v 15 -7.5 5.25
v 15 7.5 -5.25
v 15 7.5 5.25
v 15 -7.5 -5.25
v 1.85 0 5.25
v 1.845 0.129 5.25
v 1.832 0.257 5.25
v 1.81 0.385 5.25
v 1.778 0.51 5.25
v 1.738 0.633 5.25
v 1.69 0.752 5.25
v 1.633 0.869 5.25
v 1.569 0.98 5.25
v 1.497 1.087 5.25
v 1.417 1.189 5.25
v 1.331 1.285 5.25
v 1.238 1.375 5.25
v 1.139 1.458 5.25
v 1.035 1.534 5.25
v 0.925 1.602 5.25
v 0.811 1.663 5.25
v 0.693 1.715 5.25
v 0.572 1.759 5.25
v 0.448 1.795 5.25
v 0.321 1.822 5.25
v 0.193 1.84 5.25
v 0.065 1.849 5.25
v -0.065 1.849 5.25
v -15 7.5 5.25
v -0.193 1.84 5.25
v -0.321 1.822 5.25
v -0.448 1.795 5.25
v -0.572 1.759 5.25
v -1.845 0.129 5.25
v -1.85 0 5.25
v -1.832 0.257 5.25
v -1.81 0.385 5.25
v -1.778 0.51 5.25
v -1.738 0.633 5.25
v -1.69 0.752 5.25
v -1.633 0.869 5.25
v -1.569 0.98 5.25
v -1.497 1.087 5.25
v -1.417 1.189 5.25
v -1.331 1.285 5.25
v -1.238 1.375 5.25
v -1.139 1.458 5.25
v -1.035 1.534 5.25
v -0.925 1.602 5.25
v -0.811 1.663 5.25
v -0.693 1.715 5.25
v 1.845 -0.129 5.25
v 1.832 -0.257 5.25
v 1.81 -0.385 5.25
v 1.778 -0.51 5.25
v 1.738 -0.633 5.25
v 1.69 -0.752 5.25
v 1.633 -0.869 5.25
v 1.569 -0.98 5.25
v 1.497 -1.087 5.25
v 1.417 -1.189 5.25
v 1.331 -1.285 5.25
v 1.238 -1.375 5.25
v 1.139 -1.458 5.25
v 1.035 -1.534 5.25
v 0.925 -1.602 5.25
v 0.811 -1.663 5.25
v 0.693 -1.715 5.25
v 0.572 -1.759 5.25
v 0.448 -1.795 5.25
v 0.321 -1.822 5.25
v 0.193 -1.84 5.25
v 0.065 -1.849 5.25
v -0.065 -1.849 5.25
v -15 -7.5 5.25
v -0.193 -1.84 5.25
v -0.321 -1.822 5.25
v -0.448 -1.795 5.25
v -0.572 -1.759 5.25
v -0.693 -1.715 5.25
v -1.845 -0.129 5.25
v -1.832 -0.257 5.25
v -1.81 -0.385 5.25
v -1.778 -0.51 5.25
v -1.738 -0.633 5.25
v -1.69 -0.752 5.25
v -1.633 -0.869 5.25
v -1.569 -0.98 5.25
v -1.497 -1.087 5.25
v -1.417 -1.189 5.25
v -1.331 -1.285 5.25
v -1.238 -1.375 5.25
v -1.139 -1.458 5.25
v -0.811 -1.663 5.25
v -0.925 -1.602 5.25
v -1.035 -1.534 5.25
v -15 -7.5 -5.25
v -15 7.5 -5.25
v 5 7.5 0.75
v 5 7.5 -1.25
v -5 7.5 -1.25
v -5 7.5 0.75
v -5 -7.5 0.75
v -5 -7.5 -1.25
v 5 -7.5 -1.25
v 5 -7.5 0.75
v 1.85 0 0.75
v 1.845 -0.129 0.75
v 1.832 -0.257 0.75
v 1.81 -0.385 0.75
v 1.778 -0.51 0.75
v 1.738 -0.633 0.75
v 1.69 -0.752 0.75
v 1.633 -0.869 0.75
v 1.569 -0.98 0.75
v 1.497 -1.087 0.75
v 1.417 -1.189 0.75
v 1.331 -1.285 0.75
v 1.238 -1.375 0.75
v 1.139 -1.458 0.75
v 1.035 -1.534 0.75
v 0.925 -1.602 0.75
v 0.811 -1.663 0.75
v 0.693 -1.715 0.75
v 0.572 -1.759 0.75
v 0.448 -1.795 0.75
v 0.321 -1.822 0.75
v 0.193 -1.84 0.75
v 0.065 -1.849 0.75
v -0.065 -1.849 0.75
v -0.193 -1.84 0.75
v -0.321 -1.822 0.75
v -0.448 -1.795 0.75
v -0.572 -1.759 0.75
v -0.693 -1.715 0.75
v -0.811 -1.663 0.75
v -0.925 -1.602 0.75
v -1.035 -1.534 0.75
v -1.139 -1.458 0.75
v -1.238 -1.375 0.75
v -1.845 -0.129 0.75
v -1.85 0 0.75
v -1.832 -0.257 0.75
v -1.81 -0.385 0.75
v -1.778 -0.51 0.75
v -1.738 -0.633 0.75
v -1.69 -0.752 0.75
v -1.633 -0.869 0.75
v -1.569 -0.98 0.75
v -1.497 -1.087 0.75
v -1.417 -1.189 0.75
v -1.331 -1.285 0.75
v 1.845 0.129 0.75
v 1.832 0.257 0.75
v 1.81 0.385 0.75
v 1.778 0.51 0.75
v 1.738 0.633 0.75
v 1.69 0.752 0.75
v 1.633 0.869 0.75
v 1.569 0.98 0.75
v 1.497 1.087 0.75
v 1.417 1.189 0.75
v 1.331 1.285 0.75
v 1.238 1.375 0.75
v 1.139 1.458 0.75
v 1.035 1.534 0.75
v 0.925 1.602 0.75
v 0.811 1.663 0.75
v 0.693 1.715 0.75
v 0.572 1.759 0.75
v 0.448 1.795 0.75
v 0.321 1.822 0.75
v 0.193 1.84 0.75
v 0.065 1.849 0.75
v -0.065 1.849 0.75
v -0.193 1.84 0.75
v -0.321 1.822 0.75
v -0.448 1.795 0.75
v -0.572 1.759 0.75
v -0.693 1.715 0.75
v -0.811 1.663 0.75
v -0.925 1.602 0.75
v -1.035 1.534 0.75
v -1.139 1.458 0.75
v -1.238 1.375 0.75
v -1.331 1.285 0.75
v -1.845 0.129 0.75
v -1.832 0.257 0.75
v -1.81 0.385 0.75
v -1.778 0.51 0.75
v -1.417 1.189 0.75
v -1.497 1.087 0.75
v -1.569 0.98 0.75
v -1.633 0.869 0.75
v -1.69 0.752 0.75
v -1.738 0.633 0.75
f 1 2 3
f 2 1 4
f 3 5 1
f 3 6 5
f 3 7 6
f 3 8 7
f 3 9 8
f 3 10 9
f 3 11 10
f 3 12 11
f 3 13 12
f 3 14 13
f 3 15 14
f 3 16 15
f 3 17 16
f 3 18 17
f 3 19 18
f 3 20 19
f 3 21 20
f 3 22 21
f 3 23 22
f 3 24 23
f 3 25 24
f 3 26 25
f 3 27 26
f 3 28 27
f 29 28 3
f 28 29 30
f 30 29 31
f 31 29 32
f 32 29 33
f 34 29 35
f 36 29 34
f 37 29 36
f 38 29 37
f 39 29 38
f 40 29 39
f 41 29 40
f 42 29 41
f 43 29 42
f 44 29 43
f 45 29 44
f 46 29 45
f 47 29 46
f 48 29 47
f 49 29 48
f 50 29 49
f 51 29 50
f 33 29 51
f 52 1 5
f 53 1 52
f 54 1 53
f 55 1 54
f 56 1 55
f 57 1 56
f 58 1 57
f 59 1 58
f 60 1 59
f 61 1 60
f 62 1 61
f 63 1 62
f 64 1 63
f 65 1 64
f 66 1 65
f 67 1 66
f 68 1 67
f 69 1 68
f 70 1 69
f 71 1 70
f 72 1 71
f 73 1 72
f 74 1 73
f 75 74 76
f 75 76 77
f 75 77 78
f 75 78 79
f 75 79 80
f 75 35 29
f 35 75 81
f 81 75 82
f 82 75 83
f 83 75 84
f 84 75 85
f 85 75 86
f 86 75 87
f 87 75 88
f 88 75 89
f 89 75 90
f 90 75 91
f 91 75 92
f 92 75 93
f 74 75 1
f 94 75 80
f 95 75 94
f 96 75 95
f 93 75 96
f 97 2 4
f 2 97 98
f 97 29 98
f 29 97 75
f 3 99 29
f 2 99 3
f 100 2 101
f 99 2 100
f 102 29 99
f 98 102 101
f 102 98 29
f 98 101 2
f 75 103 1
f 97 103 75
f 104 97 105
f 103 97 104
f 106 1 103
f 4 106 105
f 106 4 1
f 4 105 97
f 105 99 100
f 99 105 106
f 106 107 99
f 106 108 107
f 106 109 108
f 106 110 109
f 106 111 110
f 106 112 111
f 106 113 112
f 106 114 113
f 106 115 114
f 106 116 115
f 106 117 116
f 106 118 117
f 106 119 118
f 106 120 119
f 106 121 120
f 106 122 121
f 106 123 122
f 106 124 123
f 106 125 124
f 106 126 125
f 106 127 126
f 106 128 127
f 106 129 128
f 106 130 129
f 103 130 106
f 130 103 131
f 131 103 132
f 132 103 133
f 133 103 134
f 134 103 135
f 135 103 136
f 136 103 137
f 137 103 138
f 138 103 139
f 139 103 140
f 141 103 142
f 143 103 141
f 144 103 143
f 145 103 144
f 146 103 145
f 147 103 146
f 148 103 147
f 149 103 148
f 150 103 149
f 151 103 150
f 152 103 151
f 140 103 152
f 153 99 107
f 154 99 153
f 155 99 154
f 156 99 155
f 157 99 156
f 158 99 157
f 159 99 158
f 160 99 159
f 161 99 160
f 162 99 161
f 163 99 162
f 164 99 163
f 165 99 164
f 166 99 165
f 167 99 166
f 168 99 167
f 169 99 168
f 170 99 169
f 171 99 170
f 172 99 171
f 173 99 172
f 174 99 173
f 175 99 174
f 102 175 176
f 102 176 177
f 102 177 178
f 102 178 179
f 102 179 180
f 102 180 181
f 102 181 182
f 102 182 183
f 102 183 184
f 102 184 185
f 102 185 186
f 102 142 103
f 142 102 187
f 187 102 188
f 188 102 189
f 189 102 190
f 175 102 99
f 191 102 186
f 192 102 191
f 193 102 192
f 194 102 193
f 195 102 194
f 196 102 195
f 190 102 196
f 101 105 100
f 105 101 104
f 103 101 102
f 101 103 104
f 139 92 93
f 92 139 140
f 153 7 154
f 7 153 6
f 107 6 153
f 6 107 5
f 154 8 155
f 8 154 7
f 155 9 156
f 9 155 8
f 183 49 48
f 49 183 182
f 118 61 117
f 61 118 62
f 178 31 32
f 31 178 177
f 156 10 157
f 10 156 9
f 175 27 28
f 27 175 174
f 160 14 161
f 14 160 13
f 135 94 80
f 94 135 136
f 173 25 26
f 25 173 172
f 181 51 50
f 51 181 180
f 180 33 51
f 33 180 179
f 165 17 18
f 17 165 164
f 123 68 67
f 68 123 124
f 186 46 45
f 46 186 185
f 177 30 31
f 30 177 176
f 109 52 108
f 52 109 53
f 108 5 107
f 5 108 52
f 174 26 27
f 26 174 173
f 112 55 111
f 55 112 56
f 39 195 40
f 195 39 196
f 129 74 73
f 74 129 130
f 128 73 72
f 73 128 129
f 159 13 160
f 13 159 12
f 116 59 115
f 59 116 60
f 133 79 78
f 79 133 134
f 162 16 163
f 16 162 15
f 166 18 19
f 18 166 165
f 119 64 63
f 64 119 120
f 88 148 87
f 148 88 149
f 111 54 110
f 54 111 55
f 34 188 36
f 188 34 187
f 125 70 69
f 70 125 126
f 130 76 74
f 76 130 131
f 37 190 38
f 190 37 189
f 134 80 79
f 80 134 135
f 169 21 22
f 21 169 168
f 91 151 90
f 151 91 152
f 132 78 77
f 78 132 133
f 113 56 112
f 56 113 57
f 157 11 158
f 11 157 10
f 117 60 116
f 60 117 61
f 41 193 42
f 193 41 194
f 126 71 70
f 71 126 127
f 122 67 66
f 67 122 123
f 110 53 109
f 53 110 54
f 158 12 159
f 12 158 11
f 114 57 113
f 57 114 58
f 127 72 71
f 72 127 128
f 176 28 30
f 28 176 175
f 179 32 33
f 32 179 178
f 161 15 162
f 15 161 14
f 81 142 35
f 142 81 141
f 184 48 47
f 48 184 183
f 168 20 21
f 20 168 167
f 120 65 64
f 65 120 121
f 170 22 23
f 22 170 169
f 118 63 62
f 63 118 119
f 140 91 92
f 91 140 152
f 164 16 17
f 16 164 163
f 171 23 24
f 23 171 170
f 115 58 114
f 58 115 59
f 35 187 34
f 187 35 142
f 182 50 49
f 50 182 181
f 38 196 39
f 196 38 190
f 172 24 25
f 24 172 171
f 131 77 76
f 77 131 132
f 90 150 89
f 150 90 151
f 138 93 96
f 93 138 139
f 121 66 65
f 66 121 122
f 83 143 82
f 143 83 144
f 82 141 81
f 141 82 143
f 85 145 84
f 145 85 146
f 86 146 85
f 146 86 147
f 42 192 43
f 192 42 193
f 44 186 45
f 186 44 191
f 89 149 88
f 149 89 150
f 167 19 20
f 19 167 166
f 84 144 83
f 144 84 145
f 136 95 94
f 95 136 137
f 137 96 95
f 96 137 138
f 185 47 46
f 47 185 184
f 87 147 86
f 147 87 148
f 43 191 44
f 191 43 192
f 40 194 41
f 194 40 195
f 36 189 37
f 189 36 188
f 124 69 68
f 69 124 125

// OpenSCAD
$fn = 90;
depth = 15;
length = 30;
height = 10.5;
slitHeight = 2;
difference(){
	cube([length, depth, height], center=true);
	translate([0, 0, -height/2+slitHeight/2+4])
		#cube([10, depth, slitHeight], center=true);
	#cylinder(d=3.7, h=height);
}
